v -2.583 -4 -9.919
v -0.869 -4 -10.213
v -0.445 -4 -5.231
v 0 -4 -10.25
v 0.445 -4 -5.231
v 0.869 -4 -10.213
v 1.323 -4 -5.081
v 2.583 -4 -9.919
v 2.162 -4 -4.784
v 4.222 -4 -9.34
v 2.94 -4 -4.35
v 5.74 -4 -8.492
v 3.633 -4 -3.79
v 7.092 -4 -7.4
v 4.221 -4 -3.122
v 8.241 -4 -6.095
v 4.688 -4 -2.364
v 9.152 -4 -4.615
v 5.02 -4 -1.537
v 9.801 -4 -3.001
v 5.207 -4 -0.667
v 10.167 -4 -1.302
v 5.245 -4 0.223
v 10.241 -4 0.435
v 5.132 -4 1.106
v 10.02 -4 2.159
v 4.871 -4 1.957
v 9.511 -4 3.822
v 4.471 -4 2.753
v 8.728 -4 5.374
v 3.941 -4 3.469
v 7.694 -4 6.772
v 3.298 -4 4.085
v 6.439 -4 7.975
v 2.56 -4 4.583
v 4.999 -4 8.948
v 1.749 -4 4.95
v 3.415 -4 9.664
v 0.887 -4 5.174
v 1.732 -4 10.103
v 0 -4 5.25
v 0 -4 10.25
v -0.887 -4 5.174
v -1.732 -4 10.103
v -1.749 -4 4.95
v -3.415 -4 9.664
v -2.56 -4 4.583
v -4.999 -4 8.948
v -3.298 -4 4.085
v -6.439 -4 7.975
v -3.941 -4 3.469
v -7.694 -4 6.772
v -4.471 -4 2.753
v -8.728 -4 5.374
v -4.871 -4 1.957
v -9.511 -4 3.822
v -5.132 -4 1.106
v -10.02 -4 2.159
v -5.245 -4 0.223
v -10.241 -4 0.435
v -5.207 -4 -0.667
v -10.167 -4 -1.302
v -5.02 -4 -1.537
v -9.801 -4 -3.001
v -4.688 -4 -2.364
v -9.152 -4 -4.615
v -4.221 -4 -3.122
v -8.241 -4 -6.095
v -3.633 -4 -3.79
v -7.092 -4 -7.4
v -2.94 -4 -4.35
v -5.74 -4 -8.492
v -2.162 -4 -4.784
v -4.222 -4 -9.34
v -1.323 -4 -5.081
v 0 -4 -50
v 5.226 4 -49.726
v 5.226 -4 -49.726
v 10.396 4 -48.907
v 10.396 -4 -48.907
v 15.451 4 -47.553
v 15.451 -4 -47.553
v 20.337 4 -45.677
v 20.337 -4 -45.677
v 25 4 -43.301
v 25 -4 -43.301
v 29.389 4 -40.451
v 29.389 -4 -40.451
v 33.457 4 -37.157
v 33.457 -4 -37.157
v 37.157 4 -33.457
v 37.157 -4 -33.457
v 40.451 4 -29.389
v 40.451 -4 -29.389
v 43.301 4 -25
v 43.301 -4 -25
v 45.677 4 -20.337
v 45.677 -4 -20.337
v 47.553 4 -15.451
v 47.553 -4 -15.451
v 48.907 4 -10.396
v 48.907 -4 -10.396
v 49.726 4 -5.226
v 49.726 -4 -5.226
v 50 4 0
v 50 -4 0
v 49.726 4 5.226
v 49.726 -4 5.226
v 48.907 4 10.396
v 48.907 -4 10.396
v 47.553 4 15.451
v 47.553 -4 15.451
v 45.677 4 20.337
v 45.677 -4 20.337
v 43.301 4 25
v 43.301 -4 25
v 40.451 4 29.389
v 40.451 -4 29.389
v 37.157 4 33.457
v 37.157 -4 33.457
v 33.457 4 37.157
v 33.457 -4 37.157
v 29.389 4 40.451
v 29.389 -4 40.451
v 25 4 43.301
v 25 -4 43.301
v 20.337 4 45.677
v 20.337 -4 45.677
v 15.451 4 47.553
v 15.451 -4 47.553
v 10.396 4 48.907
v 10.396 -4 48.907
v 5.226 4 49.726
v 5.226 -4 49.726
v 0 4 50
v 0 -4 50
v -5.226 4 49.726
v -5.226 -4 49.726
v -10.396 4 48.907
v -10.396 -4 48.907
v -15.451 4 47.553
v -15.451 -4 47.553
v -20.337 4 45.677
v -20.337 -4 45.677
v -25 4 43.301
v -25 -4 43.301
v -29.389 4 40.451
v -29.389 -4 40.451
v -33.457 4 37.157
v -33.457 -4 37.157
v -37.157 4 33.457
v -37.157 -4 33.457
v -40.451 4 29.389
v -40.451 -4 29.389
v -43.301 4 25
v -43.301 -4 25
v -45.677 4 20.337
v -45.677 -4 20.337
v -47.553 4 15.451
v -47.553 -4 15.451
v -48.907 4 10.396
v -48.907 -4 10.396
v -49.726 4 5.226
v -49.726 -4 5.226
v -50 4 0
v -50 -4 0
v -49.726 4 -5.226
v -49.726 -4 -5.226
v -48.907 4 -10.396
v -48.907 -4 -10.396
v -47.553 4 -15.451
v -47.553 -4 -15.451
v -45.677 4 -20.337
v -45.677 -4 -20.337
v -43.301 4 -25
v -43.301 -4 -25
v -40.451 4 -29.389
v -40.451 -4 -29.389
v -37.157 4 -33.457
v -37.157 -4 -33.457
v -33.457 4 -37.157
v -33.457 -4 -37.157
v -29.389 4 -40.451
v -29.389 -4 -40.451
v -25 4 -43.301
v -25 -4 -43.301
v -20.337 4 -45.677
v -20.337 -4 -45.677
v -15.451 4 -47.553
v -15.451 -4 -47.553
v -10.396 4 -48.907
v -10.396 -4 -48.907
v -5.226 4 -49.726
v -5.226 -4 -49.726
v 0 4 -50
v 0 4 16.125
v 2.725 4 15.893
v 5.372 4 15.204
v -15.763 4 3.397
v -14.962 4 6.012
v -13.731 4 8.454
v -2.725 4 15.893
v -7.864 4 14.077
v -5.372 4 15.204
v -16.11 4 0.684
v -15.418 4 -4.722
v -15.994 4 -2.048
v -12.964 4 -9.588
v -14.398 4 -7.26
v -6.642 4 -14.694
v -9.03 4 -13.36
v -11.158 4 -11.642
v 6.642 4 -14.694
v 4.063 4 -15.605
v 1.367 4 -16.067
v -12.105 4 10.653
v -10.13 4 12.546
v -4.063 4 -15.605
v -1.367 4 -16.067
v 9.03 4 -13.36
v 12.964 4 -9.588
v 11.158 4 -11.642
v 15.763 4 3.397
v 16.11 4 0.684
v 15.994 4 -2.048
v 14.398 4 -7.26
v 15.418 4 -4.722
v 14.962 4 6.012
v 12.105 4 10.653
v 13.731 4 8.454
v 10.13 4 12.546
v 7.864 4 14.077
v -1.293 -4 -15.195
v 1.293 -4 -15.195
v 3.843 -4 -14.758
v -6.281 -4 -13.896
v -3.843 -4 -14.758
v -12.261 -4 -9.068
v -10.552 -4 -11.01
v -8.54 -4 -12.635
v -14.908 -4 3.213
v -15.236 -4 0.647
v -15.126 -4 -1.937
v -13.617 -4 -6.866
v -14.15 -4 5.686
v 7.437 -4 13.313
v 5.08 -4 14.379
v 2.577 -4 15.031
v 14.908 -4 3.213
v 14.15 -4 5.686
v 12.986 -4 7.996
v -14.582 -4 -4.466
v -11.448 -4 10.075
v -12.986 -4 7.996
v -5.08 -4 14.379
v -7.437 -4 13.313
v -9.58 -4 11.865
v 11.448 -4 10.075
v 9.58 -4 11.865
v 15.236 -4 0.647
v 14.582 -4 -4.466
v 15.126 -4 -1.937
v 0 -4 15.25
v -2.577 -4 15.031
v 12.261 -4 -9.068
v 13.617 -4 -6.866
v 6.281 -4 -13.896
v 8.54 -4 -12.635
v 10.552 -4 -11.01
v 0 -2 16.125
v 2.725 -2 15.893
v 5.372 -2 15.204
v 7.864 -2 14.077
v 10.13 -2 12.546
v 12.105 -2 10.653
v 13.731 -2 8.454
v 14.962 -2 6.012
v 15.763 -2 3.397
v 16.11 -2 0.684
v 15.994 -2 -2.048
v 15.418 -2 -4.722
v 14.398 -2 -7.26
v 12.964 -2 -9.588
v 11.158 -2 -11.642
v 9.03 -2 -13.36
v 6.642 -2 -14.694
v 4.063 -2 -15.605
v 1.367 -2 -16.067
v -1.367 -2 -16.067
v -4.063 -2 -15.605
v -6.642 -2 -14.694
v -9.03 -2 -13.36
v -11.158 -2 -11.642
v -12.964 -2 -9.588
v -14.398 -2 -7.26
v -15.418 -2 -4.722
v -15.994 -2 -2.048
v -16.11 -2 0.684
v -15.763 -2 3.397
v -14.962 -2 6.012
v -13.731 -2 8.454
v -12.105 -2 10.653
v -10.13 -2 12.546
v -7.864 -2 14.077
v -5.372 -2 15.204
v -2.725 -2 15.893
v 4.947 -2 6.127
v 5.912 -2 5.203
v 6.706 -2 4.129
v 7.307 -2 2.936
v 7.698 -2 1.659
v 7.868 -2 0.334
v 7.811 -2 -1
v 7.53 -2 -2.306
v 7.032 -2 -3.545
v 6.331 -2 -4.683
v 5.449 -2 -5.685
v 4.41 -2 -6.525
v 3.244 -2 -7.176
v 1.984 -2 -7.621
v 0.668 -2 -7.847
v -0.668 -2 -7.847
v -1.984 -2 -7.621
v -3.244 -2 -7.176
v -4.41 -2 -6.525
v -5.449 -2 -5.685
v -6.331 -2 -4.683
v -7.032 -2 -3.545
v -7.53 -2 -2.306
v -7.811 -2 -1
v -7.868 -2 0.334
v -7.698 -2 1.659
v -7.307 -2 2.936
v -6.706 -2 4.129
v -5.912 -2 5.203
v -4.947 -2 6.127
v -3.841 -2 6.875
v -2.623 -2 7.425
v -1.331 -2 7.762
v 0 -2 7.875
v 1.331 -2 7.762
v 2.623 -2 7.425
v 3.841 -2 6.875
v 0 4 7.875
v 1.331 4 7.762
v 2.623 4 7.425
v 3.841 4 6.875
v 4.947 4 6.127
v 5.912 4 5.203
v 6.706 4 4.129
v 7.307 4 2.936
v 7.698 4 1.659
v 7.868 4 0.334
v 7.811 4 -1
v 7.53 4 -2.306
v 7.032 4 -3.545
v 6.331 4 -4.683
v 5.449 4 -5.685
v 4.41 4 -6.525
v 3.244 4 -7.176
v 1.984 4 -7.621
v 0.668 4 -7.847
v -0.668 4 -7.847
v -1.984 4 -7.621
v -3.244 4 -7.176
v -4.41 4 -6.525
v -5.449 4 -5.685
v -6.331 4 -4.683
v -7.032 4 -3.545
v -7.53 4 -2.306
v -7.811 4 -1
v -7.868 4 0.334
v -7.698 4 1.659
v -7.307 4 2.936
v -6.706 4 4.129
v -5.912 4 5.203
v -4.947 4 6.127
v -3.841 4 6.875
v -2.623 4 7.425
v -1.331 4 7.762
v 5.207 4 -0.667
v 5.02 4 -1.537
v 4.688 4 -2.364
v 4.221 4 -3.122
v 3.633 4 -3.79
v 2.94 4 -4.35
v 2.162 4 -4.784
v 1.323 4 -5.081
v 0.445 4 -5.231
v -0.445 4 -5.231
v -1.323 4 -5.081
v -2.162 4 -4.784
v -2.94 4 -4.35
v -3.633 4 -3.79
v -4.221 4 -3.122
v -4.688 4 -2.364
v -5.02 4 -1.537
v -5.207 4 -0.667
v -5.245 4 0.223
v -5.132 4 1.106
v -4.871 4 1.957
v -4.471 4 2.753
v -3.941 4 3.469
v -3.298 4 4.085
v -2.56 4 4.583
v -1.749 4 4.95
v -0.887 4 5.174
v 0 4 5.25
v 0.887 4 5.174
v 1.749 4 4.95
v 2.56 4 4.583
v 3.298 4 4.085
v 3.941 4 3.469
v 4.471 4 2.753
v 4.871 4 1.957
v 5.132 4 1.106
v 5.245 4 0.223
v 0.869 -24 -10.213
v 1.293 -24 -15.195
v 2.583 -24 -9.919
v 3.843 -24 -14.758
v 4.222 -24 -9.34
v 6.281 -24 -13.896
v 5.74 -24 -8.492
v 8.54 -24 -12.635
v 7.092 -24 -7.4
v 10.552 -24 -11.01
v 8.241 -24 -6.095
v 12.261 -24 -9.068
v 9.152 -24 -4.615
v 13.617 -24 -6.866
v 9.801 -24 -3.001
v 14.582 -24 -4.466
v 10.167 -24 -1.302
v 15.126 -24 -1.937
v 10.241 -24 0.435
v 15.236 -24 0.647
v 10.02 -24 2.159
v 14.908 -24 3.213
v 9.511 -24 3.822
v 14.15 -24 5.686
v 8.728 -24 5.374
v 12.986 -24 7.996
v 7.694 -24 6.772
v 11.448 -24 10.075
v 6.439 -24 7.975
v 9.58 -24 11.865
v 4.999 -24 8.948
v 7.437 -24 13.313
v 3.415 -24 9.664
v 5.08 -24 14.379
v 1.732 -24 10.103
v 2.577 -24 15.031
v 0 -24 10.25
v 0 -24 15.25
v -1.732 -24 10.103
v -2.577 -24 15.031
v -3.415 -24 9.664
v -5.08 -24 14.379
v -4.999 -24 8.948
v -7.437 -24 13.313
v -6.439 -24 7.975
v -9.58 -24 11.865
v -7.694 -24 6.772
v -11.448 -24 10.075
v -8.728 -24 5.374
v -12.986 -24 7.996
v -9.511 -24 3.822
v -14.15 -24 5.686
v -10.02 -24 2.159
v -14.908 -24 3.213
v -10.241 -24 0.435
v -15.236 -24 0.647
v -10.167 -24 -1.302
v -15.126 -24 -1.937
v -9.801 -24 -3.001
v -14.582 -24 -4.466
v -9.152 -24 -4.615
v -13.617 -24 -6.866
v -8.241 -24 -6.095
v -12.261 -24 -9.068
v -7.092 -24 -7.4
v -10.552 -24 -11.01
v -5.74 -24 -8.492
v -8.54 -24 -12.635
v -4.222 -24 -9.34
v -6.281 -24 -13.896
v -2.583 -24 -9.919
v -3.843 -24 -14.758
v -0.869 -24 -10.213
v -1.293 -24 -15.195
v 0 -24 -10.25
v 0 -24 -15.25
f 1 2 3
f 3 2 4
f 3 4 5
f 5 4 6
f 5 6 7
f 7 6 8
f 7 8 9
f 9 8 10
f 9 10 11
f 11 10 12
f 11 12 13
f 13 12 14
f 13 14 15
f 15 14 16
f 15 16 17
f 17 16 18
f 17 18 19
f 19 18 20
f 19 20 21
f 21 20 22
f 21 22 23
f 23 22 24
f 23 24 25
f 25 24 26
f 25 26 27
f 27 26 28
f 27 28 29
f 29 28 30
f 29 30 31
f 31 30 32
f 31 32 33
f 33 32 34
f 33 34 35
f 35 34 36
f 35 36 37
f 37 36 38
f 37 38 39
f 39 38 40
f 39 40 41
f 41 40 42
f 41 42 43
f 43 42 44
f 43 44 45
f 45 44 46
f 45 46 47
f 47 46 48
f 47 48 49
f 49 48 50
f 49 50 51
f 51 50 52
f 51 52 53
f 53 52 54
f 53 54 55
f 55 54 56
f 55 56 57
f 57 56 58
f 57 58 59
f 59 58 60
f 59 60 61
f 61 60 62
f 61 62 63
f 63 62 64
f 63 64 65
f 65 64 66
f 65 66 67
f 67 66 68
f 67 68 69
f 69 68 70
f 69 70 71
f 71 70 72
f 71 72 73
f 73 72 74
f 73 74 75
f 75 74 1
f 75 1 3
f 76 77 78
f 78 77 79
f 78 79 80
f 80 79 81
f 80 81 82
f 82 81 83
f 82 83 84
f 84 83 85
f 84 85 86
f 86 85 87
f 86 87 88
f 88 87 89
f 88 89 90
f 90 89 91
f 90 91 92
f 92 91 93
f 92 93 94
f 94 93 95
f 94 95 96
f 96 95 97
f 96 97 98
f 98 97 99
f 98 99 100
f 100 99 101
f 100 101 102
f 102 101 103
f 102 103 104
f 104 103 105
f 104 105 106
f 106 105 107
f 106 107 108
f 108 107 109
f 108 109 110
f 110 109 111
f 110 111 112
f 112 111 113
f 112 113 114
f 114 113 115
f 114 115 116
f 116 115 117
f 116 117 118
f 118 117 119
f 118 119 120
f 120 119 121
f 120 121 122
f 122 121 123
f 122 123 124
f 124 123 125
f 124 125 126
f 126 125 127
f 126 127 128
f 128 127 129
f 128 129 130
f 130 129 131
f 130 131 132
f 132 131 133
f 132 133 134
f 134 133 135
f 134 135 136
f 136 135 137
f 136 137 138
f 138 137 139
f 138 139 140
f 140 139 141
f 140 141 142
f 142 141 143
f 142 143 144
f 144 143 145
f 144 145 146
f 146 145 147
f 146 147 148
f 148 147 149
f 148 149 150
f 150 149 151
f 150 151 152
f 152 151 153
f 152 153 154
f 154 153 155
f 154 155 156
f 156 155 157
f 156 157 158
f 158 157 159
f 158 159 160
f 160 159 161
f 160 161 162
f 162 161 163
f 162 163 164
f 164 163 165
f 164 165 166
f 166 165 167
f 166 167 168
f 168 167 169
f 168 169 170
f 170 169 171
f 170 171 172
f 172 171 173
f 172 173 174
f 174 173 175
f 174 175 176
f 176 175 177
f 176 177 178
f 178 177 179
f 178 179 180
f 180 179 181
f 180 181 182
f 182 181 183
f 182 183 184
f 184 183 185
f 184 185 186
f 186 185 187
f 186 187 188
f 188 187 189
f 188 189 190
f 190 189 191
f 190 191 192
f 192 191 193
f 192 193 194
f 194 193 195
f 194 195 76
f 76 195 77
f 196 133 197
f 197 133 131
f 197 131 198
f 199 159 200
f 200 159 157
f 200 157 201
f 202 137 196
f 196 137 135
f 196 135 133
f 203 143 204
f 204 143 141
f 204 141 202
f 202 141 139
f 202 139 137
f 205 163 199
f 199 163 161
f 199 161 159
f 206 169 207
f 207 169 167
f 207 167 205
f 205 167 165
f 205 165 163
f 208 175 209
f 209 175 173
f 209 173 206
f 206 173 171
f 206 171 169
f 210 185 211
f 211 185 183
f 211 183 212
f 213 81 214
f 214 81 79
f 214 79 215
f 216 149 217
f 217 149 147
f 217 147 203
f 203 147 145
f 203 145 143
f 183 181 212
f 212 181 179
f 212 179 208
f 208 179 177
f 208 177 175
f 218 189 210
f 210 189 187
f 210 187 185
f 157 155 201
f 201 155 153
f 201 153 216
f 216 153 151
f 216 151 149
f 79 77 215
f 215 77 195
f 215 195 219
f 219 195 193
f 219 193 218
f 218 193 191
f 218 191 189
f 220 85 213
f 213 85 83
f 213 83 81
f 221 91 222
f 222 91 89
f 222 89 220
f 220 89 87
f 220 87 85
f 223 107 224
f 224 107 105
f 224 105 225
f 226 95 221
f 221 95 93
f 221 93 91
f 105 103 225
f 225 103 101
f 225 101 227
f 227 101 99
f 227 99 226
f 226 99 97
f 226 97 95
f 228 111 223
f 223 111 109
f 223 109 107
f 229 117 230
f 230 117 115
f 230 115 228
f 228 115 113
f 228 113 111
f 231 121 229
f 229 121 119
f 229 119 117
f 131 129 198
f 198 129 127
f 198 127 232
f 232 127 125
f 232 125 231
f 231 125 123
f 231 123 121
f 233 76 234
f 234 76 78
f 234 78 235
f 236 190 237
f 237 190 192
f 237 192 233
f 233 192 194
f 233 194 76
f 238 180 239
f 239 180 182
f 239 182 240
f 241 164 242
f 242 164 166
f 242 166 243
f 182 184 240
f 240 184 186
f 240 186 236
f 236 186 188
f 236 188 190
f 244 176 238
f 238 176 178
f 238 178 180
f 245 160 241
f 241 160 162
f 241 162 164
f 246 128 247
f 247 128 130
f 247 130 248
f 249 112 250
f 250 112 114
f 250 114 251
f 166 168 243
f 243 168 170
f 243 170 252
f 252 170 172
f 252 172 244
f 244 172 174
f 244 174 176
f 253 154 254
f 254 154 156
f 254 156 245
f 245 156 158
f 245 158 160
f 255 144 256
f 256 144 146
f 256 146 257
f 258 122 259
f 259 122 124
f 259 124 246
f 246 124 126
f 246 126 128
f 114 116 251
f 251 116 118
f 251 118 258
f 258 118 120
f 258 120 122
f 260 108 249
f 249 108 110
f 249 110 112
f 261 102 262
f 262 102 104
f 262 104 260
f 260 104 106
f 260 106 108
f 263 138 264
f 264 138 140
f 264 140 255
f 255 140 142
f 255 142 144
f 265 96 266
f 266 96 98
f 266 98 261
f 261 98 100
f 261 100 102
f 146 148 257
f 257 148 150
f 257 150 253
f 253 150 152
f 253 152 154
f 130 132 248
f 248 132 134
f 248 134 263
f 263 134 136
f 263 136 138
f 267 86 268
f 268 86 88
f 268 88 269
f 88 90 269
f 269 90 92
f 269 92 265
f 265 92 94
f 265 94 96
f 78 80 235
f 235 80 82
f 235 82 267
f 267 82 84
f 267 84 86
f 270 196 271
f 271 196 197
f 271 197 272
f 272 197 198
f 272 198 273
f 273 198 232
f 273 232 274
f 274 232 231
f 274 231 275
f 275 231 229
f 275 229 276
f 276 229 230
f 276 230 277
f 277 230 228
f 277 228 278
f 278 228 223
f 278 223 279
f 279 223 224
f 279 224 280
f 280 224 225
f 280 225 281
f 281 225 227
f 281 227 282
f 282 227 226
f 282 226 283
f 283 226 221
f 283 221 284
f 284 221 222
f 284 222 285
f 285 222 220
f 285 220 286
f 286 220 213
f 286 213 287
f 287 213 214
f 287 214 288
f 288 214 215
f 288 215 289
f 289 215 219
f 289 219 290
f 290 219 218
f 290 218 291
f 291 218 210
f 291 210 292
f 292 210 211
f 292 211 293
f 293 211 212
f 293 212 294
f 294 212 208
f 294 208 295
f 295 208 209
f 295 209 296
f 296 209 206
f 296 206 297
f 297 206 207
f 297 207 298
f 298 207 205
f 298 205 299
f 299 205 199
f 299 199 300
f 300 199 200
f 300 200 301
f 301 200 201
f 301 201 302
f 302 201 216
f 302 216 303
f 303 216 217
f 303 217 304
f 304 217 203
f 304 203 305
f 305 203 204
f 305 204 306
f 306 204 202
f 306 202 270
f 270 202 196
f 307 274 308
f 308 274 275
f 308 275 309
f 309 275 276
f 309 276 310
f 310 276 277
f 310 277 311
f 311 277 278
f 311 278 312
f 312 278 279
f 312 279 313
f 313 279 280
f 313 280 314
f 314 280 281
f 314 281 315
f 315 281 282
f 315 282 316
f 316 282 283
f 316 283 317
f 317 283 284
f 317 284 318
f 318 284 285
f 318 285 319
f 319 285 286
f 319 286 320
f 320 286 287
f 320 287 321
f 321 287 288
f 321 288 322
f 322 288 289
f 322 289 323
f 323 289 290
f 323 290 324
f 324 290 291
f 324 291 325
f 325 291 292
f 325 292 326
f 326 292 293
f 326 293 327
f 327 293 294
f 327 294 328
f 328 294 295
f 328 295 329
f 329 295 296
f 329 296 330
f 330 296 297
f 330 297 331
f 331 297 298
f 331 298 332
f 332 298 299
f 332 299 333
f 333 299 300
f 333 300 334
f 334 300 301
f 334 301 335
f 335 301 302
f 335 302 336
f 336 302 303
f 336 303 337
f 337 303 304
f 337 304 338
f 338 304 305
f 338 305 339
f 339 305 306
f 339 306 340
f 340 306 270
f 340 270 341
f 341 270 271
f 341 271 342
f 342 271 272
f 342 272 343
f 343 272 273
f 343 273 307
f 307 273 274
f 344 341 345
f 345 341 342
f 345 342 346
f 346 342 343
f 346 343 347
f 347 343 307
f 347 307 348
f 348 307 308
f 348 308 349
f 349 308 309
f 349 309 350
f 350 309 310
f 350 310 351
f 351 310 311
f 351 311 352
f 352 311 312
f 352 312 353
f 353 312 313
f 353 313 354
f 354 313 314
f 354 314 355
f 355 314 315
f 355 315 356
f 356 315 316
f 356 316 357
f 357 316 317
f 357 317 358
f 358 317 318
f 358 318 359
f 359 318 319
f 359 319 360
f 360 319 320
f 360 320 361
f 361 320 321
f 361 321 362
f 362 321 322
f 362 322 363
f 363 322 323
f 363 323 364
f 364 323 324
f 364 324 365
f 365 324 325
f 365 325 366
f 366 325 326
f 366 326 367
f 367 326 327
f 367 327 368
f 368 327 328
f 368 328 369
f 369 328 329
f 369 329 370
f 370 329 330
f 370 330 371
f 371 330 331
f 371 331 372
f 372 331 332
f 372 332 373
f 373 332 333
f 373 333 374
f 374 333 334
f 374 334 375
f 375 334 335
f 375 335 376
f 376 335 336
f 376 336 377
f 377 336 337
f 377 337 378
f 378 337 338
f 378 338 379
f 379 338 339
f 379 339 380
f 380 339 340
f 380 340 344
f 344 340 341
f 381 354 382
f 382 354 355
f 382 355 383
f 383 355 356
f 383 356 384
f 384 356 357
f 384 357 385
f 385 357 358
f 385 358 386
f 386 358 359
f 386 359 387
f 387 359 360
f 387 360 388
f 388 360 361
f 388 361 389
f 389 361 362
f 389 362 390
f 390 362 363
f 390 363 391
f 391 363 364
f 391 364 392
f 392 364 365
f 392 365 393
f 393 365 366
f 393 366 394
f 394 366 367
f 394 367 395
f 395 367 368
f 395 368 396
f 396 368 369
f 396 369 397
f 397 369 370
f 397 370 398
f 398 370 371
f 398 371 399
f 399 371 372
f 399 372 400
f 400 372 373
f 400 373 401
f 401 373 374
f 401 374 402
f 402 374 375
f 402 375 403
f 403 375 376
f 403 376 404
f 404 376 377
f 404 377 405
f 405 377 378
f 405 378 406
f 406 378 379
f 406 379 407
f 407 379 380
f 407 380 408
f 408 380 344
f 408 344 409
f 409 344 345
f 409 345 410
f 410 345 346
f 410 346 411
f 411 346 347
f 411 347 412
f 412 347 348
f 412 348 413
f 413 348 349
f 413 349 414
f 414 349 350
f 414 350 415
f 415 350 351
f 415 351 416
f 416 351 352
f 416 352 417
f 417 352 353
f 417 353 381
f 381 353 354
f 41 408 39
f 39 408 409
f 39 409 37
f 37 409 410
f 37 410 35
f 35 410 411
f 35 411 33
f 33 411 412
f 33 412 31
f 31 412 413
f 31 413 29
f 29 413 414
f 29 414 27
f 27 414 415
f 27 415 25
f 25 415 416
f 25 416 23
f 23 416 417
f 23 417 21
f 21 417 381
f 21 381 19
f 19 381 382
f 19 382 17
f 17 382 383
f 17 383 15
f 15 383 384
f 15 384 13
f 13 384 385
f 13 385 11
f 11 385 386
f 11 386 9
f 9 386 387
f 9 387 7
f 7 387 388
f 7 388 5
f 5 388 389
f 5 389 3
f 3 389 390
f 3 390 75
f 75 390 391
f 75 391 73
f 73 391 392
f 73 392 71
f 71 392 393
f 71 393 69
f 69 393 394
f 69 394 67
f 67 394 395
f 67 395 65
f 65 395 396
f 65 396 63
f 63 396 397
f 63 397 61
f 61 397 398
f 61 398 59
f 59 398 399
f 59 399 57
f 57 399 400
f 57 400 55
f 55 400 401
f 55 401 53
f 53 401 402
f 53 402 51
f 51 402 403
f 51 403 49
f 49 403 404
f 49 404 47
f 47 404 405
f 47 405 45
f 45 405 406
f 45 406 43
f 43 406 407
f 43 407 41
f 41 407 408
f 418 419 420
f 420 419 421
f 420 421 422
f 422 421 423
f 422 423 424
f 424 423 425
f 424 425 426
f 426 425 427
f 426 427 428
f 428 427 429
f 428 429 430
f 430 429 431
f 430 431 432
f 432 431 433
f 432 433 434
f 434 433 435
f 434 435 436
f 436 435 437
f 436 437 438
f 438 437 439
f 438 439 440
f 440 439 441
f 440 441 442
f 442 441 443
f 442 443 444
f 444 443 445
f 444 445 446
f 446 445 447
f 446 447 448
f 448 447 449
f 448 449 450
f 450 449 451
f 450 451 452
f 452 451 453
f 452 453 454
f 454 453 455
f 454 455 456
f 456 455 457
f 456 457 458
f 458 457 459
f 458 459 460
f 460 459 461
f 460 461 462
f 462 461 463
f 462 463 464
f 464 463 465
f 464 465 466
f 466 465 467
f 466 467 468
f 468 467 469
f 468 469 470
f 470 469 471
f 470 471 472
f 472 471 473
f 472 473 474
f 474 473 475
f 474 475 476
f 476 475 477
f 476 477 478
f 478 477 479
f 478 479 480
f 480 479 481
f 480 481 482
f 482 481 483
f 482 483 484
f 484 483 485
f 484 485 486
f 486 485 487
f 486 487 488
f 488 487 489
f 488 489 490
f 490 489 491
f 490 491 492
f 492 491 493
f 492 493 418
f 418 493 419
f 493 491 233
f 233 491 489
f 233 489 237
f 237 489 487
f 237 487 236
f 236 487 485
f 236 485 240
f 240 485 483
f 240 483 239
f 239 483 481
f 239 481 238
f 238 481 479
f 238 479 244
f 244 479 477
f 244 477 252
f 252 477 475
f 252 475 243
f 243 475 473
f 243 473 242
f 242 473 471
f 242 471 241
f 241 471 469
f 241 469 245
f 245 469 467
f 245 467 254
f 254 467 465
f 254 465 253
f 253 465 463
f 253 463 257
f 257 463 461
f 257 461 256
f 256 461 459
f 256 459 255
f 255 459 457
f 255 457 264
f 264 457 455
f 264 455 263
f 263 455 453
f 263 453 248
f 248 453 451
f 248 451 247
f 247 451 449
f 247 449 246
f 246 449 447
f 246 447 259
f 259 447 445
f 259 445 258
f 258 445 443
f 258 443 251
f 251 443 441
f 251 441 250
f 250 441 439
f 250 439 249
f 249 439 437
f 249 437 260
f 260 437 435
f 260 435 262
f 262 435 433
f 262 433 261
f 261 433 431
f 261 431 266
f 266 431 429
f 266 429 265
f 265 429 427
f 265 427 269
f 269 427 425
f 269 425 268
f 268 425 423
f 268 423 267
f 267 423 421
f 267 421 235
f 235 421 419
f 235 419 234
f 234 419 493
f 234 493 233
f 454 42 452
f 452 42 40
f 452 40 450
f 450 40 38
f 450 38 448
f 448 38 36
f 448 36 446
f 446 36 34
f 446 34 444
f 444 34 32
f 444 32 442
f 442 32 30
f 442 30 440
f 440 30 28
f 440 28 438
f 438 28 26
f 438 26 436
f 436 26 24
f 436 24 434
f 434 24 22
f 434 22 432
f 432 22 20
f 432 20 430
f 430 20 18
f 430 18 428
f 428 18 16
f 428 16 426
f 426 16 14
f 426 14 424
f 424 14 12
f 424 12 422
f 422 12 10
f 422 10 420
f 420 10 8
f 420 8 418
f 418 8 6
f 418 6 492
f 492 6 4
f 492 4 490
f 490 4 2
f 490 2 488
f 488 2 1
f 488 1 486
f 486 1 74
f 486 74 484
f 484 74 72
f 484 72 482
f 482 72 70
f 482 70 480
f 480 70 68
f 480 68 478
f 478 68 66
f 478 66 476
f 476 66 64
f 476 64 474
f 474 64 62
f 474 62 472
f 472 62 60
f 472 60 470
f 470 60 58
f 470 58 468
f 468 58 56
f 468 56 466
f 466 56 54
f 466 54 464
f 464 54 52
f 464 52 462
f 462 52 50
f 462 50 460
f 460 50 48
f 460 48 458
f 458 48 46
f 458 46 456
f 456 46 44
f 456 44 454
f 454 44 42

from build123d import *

# Parameters (mm, degrees)
SKETCH1_R           = 50
BOSS_EXTRUDE1_DEPTH = 4
SKETCH2_R           = 16.125
SKETCH2_R_2         = 7.875
CUT_EXTRUDE1_DEPTH  = 6
SKETCH3_R           = 5.25
CUT_EXTRUDE2_DEPTH  = 72.161787499
SKETCH4_R           = 15.25
SKETCH4_R_2         = 10.25
BOSS_EXTRUDE2_DEPTH = 20


with BuildPart() as part:
    # Sketch1 → Boss-Extrude1 (new, symmetric)
    with BuildSketch(Plane(origin=(0, 0, 0), x_dir=(1, 0, 0), z_dir=(0, 1, 0))):
        with Locations(Location((0, 0, 0), (0, 0, 270))):
            Circle(SKETCH1_R)
    extrude(amount=BOSS_EXTRUDE1_DEPTH, both=True)

    # Sketch2 → Cut-Extrude1 (cut)
    with BuildSketch(Plane(origin=(0, 4, 0), x_dir=(1, 0, 0), z_dir=(0, 1, 0))):
        with Locations(Location((0, 0, 0), (0, 0, 270))):
            Circle(SKETCH2_R)
        with Locations(Location((0, 0, 0), (0, 0, 270))):
            Circle(SKETCH2_R_2, mode=Mode.SUBTRACT)
    extrude(amount=-CUT_EXTRUDE1_DEPTH, mode=Mode.SUBTRACT)

    # Sketch3 → Cut-Extrude2 (cut, through all)
    with BuildSketch(Plane(origin=(0, 4, 0), x_dir=(1, 0, 0), z_dir=(0, 1, 0))):
        with Locations(Location((0, 0, 0), (0, 0, 270))):
            Circle(SKETCH3_R)
    extrude(amount=-CUT_EXTRUDE2_DEPTH, mode=Mode.SUBTRACT)

    # Sketch4 → Boss-Extrude2 (add)
    with BuildSketch(Plane.XZ.offset(4)):
        with Locations(Location((0, 0, 0), (0, 0, 90))):
            Circle(SKETCH4_R)
        with Locations(Location((0, 0, 0), (0, 0, 270))):
            Circle(SKETCH4_R_2, mode=Mode.SUBTRACT)
    extrude(amount=BOSS_EXTRUDE2_DEPTH)


solid = part.part
